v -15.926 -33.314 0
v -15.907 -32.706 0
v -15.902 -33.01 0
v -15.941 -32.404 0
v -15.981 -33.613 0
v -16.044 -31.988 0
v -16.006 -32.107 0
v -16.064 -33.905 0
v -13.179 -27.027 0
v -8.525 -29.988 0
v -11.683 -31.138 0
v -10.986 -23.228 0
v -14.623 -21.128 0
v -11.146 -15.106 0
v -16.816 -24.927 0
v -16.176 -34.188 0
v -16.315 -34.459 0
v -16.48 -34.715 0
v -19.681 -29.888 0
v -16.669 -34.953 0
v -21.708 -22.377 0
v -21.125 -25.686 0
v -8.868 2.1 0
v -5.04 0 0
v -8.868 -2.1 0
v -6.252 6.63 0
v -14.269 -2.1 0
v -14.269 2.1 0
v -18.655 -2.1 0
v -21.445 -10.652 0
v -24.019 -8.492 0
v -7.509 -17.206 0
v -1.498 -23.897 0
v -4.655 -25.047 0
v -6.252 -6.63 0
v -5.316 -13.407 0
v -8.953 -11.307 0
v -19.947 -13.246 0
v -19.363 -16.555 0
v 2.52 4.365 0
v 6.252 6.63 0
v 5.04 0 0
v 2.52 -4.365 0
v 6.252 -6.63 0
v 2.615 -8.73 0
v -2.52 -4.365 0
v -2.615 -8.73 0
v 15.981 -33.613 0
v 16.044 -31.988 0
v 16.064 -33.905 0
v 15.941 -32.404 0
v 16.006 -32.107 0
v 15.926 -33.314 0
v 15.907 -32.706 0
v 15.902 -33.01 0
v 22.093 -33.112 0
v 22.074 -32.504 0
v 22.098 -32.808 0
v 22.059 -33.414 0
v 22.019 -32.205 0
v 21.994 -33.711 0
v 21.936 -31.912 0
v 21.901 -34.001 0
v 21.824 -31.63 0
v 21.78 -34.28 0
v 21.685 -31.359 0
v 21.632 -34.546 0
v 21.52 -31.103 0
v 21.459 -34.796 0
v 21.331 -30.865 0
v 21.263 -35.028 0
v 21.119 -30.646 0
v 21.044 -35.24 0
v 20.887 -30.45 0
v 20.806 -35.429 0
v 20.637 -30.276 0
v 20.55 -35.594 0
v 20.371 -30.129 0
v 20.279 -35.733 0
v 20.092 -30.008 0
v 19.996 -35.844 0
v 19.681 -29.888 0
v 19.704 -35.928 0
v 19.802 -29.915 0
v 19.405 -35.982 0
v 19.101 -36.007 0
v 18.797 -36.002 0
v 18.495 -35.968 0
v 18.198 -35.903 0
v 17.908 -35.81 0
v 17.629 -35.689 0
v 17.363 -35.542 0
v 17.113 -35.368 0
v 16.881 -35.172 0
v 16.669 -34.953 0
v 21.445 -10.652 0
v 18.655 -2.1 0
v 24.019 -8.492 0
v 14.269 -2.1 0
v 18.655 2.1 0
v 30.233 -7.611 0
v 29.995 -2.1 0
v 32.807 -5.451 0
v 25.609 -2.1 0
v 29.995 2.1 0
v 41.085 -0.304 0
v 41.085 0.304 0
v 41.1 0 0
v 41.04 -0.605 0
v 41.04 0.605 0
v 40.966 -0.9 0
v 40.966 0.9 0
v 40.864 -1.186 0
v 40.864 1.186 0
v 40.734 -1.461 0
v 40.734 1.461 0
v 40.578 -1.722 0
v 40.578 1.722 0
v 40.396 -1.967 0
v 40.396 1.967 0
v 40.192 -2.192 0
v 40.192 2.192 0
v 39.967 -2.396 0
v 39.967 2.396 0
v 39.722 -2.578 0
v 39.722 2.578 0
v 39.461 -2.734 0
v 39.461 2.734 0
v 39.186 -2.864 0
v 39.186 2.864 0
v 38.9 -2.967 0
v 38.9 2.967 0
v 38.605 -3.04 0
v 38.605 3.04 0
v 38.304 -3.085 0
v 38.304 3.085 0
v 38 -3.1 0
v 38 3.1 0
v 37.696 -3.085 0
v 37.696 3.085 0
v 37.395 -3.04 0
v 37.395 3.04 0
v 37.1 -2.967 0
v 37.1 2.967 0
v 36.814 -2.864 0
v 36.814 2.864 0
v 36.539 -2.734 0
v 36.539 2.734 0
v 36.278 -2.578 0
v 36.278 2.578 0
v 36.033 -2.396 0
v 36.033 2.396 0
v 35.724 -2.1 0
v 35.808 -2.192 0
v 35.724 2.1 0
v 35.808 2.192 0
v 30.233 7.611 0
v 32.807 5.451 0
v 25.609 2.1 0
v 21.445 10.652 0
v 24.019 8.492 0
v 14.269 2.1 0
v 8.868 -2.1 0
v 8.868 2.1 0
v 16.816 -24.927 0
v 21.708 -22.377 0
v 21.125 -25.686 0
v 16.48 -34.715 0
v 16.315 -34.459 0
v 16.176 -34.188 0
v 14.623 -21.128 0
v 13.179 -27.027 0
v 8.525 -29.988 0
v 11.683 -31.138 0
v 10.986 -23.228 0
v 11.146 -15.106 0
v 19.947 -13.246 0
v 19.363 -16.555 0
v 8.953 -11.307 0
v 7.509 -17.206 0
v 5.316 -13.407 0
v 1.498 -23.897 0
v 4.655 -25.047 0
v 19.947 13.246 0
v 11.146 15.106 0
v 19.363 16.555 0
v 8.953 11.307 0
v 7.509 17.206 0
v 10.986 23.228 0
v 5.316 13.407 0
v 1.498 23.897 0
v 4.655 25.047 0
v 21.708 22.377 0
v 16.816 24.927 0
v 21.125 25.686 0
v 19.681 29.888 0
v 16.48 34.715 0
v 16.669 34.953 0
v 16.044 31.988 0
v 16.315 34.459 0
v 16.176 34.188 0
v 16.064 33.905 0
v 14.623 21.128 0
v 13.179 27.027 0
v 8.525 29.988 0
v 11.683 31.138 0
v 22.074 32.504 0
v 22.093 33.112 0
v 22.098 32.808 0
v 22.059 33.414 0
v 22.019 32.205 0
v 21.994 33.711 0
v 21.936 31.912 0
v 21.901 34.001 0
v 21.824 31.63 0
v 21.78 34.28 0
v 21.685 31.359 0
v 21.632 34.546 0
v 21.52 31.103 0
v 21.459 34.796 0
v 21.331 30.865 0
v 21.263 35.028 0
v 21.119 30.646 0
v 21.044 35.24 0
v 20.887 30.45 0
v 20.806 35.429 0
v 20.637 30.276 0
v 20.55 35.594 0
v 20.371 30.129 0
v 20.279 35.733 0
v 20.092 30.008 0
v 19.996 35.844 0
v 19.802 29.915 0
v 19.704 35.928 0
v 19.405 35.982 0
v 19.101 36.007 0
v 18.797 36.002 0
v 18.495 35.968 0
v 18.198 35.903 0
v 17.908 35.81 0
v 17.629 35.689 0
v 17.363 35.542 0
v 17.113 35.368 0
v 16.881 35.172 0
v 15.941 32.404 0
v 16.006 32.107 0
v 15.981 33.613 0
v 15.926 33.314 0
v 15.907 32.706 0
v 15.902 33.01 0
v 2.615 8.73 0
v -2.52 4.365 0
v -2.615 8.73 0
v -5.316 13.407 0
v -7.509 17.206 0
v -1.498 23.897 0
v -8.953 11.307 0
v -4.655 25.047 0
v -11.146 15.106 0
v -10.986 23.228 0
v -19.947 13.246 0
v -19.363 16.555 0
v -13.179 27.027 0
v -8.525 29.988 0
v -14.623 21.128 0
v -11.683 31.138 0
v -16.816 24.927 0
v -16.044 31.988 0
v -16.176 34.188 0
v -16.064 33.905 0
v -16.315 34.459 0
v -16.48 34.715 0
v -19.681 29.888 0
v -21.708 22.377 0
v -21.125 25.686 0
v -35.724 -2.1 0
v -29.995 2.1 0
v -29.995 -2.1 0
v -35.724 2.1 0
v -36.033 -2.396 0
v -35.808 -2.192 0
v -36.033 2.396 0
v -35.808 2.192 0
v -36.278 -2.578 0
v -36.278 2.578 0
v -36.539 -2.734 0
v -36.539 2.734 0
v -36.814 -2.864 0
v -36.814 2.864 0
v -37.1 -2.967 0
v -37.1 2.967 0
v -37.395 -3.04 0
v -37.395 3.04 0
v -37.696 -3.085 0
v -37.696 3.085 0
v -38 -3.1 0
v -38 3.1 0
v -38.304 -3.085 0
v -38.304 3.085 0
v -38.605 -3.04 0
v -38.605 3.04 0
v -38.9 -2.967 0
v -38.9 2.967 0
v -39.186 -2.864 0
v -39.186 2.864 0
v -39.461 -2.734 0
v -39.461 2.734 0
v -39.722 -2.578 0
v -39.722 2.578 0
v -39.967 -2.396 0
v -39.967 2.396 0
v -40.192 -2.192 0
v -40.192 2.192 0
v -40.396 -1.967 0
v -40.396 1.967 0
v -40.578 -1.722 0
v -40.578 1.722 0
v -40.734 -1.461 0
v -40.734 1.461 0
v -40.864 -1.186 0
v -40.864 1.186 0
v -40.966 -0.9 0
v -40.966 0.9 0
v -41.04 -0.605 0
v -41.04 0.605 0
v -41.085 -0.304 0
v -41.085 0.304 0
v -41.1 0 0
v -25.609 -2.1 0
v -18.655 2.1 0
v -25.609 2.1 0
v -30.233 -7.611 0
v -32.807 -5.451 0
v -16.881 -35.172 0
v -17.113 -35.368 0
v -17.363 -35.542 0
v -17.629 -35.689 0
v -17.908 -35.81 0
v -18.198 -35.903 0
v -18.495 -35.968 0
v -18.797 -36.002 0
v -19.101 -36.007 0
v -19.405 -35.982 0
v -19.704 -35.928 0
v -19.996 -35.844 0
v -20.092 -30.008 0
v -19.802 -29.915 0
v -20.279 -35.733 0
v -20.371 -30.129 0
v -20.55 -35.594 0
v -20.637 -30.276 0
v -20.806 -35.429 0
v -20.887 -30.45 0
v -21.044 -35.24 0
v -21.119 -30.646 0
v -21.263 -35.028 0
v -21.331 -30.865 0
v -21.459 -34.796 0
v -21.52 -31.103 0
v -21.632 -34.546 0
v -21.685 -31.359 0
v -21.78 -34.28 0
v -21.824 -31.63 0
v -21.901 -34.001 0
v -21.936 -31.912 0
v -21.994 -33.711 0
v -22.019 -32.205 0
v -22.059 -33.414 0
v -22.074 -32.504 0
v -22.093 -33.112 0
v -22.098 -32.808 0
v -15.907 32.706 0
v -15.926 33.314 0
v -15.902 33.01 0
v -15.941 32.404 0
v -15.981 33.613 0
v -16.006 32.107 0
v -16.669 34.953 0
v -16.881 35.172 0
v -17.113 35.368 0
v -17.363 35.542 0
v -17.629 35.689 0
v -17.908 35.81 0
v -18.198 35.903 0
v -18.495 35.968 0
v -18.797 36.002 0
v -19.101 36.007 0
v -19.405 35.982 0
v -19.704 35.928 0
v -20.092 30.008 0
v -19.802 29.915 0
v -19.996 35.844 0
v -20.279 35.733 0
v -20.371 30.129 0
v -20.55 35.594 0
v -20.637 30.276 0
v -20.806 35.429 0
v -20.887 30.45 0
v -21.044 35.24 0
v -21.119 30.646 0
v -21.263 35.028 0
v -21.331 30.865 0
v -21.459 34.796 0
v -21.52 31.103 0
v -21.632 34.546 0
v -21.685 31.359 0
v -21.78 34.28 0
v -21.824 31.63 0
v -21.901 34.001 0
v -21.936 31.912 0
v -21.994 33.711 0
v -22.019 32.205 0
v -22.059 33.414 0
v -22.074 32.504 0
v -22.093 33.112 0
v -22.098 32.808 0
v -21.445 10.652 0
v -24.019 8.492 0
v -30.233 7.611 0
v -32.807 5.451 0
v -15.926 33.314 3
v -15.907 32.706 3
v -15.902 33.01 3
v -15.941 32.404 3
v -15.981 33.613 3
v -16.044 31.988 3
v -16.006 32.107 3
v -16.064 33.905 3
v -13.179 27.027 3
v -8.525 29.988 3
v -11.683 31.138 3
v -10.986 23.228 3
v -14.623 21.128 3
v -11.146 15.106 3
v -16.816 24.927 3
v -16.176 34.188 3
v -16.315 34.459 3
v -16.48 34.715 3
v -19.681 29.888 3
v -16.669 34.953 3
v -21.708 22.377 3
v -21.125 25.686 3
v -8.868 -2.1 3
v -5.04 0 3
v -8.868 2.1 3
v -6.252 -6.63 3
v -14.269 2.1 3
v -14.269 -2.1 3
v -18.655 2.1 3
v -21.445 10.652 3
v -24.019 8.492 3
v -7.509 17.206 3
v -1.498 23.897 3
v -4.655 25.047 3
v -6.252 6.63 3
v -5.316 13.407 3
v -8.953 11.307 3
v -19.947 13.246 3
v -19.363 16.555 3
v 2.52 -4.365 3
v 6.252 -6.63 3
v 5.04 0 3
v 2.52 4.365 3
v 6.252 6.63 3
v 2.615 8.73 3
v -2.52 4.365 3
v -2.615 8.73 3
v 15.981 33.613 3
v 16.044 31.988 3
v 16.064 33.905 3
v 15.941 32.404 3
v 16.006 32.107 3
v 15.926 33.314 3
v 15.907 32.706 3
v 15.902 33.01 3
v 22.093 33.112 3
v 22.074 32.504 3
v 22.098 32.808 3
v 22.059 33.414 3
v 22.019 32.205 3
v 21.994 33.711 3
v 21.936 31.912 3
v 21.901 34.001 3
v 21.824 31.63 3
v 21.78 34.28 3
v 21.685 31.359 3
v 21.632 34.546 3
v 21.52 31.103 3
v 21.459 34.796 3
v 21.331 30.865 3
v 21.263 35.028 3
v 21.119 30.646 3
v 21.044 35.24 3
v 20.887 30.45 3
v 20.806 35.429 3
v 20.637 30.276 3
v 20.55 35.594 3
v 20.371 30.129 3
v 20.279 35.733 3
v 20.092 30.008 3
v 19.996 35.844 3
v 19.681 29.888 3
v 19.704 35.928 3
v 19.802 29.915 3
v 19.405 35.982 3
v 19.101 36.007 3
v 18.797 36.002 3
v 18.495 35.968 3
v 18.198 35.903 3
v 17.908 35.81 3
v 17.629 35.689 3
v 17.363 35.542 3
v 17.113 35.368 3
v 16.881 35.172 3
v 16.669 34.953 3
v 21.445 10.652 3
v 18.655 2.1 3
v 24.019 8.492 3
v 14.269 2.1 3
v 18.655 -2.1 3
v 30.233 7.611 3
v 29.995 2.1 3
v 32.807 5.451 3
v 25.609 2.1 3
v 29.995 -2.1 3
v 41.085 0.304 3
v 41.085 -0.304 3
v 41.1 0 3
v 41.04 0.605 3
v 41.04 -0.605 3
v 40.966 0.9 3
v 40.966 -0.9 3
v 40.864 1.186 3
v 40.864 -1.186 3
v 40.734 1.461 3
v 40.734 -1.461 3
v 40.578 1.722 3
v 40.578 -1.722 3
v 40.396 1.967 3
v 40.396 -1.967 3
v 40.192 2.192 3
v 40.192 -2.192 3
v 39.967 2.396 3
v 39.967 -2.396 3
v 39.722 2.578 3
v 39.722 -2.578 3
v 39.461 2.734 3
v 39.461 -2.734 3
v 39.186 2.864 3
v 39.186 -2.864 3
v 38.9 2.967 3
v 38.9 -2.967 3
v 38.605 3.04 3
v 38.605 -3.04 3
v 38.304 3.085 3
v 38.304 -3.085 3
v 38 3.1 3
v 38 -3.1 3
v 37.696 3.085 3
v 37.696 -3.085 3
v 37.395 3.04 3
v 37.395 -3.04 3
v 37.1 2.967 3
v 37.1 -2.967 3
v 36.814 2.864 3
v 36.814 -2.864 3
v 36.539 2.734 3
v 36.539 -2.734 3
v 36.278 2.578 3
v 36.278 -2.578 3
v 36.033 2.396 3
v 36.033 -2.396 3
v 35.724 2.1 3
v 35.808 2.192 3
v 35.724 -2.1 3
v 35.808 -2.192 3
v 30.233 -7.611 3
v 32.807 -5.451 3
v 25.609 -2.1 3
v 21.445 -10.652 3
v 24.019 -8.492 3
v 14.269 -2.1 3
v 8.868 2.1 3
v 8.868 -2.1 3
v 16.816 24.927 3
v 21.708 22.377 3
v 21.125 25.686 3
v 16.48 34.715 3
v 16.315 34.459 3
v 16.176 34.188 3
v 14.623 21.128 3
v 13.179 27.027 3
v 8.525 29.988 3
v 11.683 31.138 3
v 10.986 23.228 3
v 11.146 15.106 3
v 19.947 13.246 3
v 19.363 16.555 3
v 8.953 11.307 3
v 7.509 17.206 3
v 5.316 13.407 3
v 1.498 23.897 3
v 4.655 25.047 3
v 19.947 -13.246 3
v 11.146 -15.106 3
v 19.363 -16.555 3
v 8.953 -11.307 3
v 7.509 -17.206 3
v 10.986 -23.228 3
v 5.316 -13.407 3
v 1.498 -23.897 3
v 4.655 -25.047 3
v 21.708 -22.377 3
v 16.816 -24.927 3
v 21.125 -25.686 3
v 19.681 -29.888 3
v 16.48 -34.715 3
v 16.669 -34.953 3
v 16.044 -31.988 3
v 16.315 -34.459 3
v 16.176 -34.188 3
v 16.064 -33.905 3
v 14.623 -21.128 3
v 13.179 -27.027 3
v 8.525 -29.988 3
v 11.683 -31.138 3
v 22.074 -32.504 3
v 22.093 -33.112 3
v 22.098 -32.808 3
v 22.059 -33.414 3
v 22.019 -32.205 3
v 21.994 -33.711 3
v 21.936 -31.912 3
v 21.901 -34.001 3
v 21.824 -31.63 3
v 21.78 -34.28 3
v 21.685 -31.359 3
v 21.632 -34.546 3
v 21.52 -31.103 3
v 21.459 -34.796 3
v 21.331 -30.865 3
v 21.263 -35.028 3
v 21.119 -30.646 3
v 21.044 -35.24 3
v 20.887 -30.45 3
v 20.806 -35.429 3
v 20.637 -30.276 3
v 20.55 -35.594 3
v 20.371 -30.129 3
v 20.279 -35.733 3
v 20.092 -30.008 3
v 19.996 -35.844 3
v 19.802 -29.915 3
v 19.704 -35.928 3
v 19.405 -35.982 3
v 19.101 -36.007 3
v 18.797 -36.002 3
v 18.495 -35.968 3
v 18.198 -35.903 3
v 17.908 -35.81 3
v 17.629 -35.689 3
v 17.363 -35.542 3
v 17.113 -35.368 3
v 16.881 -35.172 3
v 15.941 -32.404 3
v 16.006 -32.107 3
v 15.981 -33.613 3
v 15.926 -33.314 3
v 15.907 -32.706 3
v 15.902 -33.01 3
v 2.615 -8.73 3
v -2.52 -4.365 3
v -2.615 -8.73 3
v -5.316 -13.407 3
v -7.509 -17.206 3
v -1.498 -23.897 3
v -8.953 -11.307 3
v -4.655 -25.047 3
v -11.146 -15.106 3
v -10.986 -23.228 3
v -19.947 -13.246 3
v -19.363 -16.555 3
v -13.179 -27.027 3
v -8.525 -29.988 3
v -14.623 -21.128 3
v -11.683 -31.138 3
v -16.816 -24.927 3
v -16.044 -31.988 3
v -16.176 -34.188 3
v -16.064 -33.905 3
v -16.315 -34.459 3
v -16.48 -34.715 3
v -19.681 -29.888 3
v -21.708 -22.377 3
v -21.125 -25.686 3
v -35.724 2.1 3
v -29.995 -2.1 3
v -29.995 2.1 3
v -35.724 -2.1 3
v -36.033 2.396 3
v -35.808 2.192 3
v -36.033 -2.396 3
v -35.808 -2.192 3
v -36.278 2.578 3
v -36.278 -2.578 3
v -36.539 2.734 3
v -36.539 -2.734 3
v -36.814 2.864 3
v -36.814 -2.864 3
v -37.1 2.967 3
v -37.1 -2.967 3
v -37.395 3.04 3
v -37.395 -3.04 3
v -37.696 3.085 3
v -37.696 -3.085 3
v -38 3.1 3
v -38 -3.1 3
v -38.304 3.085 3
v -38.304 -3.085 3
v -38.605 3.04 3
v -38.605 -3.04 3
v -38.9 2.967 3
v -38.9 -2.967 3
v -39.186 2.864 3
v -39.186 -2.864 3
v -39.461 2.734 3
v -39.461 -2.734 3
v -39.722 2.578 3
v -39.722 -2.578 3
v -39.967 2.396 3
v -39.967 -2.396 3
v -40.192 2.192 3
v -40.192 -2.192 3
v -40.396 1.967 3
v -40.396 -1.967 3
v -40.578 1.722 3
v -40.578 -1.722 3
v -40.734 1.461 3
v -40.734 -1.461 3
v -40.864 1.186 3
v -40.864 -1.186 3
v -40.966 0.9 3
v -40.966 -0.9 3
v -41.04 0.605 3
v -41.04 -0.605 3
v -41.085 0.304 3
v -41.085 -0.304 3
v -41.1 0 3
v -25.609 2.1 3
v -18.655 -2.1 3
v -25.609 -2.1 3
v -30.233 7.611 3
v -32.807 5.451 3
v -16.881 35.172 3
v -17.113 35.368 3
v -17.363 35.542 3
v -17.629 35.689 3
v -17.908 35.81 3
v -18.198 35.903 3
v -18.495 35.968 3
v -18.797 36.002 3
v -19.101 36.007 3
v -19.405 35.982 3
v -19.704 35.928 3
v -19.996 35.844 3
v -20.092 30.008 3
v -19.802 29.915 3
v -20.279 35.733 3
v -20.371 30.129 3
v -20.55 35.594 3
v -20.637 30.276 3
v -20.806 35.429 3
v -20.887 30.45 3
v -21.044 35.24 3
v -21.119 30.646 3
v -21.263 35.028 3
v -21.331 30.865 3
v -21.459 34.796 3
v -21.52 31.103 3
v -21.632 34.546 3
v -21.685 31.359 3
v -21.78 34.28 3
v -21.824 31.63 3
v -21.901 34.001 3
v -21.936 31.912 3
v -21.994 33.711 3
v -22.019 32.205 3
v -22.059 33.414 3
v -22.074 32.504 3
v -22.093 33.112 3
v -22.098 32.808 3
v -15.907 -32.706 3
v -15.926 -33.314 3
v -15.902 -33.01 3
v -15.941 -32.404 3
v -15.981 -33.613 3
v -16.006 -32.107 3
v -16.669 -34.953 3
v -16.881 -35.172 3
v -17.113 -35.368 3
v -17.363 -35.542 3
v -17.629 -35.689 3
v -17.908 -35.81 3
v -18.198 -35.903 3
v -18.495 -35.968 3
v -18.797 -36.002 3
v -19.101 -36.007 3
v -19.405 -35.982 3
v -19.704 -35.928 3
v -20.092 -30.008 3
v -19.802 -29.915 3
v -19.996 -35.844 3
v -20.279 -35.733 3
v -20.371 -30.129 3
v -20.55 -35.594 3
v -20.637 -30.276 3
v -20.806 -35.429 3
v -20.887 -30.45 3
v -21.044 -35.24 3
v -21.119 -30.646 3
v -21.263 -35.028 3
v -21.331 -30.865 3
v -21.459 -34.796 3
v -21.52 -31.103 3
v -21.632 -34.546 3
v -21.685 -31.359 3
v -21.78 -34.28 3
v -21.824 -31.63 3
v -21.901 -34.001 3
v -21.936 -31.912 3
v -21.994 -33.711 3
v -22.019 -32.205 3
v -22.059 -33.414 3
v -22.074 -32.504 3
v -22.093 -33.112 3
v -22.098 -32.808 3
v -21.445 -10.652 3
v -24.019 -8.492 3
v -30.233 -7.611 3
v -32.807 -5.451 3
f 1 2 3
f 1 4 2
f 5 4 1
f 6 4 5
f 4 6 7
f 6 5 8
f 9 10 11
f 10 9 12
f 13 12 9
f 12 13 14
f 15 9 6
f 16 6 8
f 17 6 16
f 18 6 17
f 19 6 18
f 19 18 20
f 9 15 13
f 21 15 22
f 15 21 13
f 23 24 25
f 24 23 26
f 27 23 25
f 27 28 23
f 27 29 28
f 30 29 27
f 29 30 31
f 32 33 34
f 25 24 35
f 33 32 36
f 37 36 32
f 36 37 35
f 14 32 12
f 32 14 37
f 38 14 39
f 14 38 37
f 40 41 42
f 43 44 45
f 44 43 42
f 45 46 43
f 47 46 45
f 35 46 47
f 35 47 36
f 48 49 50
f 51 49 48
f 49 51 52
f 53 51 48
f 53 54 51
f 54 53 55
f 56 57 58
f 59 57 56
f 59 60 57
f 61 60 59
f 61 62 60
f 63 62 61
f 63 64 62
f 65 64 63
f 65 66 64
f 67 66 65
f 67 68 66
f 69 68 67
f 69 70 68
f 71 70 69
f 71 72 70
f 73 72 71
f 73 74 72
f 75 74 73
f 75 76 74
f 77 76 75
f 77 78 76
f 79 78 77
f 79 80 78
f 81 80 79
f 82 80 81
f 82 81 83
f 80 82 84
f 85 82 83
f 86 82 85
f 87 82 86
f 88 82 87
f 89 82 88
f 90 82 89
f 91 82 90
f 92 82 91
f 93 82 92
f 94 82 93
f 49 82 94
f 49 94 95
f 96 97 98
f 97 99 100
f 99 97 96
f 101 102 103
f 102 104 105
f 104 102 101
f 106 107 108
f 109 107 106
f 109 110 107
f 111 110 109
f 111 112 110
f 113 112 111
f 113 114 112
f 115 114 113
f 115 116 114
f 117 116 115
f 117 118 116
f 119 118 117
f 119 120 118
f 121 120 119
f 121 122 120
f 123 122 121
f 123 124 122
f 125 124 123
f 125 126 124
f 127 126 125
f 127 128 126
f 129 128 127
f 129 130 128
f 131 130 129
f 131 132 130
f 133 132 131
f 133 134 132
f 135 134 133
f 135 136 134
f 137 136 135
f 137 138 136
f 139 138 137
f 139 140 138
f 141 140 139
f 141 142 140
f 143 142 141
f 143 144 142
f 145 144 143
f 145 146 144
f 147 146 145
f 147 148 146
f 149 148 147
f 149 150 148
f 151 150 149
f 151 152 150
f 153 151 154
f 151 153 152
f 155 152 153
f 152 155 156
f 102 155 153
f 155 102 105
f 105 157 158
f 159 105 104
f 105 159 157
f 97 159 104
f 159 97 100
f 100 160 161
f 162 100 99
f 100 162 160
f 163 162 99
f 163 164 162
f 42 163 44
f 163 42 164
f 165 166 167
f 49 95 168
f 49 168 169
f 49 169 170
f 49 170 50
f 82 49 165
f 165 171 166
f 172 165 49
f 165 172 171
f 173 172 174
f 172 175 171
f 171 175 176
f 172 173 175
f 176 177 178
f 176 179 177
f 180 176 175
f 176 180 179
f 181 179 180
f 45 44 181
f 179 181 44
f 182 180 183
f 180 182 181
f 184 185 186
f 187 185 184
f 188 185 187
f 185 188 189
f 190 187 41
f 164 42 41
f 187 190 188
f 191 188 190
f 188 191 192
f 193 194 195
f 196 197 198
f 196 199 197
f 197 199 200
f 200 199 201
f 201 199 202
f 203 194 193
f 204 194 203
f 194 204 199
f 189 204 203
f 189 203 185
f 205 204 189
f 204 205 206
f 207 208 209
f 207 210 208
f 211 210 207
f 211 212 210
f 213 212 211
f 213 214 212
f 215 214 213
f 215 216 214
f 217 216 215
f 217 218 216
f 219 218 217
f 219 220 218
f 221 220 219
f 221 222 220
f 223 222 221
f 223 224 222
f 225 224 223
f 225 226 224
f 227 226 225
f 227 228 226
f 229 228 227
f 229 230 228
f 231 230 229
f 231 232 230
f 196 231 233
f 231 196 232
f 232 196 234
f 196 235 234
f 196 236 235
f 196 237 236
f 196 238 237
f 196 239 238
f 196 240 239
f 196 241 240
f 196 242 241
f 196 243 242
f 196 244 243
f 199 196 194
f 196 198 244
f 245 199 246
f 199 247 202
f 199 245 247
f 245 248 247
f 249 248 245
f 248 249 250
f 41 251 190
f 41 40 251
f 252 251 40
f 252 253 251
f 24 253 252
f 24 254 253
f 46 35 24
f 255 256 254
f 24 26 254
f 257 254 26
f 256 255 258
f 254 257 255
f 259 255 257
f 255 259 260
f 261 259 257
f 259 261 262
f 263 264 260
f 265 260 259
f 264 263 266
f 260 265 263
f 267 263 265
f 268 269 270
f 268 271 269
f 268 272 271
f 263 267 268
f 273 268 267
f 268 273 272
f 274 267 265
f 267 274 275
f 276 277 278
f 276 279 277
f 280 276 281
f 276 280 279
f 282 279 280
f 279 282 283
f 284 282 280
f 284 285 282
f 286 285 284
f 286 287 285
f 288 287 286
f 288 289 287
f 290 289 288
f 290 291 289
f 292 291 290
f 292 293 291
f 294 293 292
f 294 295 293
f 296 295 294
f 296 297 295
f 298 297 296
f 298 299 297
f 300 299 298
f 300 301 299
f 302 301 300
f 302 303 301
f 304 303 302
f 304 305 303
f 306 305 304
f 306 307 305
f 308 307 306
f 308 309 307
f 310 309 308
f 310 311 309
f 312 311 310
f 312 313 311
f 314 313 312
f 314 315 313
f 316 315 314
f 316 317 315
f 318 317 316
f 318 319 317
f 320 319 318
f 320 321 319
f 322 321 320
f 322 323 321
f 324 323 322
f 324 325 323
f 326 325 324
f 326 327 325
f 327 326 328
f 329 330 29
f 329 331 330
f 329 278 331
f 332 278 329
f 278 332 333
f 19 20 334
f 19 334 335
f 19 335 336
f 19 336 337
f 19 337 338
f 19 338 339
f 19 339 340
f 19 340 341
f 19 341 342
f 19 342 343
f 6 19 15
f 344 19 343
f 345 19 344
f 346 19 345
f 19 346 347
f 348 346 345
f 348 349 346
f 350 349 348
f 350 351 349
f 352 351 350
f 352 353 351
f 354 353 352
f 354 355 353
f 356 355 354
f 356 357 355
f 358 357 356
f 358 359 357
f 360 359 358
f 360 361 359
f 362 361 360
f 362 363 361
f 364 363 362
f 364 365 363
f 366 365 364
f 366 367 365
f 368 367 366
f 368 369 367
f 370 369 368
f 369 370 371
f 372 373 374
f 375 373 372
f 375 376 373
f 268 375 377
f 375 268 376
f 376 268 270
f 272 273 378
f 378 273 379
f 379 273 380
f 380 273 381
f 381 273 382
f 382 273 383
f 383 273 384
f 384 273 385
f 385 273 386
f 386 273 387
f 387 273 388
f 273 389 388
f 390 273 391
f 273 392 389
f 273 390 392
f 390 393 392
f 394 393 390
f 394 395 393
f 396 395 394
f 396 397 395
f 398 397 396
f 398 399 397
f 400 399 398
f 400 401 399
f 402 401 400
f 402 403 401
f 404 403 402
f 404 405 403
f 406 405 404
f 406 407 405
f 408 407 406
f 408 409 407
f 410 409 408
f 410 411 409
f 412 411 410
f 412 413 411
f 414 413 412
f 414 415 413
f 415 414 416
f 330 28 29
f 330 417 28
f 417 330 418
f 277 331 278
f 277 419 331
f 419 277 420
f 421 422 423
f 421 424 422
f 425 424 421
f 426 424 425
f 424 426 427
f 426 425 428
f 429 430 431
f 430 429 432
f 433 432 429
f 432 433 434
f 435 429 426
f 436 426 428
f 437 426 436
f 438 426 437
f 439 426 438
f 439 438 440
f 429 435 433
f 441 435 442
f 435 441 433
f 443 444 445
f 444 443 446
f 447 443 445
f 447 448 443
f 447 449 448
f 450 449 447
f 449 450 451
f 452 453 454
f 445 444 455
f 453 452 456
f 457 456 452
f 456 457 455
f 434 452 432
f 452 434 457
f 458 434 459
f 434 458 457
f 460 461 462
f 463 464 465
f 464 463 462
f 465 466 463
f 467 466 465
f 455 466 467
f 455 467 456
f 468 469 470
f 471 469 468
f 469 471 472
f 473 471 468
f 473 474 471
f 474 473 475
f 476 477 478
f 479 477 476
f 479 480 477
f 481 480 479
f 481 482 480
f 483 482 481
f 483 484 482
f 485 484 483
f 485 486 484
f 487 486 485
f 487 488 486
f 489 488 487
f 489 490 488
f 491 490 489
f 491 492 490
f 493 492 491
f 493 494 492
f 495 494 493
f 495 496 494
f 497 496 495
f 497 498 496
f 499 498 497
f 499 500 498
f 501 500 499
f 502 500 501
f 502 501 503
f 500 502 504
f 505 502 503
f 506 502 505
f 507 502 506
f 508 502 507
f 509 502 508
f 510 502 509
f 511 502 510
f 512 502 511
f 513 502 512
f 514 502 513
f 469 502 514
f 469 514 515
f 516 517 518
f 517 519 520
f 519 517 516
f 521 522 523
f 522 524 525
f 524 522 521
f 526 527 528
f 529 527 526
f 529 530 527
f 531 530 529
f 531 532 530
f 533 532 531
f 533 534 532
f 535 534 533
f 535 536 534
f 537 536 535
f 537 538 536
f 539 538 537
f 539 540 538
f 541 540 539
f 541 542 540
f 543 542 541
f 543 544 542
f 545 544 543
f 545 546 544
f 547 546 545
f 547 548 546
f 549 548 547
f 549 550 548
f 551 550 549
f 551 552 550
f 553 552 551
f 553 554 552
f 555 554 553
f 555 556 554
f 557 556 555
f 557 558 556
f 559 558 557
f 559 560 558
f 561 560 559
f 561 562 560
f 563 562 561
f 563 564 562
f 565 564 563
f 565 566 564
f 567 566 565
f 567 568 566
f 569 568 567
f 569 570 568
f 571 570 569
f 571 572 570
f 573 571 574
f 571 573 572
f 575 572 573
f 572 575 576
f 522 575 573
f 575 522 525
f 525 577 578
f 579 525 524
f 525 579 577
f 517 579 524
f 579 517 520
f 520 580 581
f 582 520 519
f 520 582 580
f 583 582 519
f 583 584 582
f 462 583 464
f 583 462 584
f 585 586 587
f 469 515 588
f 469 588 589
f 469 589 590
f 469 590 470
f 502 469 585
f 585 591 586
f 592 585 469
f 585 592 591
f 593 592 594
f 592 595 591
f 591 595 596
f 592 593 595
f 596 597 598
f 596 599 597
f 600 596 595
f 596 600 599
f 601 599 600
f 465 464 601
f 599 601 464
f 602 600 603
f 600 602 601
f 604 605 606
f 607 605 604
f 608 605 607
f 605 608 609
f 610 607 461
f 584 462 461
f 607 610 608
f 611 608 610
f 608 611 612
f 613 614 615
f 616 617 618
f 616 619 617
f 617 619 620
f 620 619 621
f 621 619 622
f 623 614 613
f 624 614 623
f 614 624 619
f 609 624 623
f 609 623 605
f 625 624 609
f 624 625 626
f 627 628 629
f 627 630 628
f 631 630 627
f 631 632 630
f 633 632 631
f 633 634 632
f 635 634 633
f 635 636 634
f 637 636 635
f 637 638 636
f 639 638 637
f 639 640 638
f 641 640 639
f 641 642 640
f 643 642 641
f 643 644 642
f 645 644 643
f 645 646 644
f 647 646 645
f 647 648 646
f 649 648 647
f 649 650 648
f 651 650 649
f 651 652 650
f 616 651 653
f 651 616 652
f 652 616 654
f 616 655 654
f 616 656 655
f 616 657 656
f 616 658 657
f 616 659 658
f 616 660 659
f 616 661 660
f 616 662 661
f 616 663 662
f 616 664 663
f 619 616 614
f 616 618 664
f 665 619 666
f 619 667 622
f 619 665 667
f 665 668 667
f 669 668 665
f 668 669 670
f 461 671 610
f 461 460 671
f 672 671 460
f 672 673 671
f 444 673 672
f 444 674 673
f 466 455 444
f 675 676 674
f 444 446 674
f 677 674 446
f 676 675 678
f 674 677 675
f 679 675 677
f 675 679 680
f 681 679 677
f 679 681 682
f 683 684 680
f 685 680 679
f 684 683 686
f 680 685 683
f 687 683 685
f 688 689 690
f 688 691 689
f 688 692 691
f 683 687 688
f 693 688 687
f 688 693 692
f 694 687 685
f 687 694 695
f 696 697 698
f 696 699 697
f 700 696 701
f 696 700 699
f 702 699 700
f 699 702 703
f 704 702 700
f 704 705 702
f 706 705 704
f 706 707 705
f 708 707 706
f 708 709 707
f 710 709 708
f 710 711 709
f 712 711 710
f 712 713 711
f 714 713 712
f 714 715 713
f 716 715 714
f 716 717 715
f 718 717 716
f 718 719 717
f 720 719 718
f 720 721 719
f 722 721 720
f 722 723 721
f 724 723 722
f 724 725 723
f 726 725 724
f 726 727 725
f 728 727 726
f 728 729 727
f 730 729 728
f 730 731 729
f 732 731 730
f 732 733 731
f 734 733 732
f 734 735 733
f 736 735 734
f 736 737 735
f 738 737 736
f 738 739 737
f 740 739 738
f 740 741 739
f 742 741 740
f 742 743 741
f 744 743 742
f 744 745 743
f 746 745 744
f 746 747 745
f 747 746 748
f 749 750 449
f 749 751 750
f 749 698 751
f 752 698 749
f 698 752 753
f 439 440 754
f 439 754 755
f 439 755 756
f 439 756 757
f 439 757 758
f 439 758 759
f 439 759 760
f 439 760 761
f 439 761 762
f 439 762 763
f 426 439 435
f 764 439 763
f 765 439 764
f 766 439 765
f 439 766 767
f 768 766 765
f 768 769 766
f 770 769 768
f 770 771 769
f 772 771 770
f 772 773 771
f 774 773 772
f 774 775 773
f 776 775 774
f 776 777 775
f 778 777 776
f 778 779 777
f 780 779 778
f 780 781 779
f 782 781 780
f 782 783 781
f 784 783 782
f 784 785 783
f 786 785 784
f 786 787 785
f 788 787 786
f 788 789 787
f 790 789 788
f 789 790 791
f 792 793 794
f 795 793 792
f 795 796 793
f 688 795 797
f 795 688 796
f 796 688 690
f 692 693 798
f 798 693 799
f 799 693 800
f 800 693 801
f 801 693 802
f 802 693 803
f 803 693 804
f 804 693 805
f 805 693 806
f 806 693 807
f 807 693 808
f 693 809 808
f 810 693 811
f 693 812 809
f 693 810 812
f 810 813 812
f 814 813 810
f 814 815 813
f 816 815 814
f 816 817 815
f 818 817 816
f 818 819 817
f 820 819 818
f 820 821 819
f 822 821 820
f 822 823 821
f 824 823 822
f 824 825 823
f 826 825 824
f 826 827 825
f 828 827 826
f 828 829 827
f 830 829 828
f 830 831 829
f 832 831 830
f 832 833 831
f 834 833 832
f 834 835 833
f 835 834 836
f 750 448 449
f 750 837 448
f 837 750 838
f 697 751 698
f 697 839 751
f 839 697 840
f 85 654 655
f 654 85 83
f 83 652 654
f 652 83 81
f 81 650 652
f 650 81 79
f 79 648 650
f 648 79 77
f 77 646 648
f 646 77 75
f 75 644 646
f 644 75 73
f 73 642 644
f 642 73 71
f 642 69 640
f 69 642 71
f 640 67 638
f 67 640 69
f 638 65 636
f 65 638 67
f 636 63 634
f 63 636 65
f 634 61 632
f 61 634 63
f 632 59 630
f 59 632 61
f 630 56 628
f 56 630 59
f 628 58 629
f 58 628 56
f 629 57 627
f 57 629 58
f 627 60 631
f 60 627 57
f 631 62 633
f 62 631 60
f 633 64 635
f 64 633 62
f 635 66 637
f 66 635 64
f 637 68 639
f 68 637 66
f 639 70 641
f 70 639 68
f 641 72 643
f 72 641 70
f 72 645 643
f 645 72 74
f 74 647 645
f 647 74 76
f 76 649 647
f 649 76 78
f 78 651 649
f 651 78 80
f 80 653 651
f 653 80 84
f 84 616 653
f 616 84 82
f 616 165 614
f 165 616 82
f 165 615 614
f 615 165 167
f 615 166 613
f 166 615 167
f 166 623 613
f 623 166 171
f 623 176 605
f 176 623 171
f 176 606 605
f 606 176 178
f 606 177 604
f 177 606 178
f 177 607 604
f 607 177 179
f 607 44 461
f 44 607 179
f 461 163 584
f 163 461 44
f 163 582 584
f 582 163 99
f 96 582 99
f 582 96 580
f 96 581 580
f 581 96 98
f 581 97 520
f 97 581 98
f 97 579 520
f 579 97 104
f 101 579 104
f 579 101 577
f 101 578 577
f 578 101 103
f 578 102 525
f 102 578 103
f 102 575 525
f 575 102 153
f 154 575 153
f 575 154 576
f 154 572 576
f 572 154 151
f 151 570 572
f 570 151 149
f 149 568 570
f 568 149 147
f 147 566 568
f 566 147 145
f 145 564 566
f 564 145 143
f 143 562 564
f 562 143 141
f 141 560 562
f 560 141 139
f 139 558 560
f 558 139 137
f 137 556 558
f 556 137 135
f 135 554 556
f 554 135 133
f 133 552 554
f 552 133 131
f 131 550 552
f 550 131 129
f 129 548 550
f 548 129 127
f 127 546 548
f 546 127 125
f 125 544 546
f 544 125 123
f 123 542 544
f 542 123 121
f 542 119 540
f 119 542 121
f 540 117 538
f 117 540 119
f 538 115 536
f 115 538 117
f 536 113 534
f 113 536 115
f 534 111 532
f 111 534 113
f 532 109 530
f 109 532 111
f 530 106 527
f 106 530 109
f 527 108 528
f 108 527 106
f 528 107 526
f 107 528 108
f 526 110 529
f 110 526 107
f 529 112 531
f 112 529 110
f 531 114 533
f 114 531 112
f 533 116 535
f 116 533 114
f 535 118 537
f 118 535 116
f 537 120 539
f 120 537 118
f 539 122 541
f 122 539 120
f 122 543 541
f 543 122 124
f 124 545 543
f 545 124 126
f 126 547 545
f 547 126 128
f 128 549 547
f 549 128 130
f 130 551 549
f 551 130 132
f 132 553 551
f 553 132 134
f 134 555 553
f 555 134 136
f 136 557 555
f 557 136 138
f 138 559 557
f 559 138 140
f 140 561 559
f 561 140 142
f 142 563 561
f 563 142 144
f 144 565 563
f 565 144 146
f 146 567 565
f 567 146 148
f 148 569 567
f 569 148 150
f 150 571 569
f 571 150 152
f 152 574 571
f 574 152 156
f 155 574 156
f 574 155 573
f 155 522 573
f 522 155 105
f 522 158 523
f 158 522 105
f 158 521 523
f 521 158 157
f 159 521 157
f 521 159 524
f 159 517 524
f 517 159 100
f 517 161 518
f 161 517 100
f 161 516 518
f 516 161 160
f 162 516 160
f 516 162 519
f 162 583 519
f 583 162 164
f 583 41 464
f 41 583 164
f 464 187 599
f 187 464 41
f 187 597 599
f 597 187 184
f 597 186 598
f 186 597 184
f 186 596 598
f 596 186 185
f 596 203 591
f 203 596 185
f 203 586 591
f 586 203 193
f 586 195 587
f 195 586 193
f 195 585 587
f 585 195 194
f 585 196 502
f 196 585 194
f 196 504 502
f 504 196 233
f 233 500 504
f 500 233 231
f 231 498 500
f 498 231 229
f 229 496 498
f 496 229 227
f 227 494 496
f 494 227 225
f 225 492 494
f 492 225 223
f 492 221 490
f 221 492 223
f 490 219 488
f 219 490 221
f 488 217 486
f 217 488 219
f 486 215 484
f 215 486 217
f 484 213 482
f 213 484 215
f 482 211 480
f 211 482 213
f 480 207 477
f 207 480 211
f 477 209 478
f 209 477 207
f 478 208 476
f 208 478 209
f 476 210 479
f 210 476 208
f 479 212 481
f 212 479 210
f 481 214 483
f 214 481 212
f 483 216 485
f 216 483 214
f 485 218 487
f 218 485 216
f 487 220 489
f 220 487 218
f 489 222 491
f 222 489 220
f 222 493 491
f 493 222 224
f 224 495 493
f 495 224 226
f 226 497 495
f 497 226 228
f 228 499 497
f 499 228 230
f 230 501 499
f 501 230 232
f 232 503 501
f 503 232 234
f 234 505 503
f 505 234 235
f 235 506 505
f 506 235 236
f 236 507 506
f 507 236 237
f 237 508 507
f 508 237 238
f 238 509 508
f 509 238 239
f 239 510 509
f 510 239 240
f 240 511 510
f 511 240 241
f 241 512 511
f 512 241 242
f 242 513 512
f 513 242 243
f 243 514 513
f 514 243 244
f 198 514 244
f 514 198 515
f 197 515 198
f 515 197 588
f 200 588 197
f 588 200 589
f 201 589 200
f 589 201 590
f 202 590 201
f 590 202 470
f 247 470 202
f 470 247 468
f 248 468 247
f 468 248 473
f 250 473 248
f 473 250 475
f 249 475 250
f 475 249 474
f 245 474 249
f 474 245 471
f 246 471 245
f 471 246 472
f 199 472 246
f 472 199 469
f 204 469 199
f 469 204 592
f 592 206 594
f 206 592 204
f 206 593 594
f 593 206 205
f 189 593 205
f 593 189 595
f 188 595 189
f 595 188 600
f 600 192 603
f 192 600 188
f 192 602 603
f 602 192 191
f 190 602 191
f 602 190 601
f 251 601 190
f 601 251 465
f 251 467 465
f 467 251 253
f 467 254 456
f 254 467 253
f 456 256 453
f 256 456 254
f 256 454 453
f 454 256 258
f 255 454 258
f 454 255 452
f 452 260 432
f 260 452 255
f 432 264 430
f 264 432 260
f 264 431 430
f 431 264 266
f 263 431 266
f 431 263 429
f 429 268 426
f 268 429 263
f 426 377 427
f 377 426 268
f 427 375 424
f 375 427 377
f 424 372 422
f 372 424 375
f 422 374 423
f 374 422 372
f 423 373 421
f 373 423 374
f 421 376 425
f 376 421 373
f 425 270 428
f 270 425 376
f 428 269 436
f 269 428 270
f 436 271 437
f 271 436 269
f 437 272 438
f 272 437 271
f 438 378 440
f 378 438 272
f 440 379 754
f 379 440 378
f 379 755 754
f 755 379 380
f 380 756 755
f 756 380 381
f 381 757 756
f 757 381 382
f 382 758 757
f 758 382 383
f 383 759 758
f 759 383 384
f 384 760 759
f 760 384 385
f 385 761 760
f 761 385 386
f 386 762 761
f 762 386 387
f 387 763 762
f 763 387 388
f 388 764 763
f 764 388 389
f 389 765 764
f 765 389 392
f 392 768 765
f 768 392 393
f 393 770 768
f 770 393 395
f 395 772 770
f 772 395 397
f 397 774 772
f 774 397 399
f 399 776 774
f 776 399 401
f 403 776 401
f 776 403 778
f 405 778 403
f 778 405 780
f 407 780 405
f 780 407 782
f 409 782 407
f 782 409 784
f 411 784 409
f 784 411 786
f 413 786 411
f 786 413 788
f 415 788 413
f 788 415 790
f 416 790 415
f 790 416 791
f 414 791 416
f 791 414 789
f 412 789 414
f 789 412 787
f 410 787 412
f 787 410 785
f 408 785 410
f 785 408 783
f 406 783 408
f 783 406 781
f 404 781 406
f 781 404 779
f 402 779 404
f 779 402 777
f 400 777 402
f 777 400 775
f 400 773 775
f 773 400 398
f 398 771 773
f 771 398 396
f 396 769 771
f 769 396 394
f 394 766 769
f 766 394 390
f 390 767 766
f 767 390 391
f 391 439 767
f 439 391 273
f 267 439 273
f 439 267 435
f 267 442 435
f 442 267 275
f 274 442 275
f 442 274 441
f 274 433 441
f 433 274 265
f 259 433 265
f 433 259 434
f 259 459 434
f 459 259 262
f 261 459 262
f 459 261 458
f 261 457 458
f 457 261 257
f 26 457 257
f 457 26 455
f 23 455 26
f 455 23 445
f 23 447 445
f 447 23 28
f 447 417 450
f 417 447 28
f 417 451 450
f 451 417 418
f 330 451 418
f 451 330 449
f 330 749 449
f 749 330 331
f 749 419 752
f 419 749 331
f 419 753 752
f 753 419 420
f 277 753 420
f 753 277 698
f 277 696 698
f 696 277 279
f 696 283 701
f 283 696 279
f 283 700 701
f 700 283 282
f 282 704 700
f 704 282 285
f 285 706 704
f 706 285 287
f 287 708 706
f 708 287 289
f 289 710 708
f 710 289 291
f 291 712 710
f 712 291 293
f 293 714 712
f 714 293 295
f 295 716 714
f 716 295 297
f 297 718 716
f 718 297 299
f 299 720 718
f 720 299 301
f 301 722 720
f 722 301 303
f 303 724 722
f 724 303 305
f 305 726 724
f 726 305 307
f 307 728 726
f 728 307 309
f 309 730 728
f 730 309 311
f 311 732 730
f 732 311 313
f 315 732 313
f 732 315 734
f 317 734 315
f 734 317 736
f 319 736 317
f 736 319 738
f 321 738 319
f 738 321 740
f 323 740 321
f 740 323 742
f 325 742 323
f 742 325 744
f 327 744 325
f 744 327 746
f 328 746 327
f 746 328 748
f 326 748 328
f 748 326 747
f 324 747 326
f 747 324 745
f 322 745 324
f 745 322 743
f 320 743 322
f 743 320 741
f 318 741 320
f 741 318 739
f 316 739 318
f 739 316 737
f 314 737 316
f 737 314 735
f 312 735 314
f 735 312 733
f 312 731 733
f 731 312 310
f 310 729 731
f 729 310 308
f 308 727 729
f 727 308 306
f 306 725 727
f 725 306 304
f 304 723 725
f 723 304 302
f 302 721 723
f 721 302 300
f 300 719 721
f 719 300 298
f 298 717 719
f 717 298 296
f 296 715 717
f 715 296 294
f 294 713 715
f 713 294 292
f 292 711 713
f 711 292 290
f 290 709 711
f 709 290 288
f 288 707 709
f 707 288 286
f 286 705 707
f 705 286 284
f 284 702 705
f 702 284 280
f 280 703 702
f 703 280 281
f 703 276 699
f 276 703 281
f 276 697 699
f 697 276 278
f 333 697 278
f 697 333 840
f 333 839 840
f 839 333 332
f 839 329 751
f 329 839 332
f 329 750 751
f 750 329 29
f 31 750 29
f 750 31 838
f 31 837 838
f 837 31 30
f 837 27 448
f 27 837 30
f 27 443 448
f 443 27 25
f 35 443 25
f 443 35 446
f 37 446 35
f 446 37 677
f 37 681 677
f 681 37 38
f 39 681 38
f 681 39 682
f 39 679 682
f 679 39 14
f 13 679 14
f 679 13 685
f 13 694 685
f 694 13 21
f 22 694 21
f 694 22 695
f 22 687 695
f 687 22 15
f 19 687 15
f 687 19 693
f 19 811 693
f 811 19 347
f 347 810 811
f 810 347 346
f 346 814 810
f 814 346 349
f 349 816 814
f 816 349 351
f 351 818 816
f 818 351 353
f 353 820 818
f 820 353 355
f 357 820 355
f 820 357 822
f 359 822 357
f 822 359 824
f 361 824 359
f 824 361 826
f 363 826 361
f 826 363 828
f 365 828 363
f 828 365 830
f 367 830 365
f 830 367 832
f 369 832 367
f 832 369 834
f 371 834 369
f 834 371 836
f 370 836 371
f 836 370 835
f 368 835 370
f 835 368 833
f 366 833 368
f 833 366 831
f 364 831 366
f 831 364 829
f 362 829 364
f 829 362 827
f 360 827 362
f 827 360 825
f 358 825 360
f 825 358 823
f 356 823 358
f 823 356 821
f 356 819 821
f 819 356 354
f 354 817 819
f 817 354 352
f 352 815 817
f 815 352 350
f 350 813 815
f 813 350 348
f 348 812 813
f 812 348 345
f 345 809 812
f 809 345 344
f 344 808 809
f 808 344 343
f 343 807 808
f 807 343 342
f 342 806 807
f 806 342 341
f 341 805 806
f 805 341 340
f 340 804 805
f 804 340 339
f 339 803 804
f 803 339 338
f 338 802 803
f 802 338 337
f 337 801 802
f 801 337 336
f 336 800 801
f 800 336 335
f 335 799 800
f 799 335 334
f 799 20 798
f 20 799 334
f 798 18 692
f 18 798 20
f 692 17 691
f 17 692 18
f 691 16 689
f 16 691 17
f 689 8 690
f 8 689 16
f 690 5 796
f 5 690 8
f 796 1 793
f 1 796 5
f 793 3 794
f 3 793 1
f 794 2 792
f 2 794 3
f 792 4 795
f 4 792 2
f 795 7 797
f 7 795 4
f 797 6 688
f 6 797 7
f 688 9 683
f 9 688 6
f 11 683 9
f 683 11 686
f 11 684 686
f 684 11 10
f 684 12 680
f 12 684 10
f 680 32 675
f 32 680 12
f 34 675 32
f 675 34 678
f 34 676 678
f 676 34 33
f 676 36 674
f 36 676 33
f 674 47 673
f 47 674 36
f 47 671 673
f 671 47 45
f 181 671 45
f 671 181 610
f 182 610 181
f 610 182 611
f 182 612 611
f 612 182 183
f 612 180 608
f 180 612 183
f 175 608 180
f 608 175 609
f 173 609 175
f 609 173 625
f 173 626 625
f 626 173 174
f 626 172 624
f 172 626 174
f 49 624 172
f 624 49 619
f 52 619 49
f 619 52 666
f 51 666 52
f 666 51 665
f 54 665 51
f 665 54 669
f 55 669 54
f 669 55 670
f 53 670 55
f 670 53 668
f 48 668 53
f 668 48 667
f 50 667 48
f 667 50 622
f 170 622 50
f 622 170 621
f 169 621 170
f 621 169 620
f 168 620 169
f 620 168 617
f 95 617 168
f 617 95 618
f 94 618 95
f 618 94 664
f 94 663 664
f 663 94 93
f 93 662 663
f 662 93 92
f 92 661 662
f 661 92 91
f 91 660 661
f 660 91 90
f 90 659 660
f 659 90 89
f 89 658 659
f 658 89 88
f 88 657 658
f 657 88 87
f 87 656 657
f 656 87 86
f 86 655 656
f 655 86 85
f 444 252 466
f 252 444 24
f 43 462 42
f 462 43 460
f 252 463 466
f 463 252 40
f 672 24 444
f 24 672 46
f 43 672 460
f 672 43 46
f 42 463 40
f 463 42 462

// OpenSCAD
// Impronta 3D — Copo de nieve colgante (diseño propio)
// Copo de 6 brazos con ramas y centro calado. Se imprime acostado, sin soportes. Se pueden hacer varios y armar una guirnalda.

diametro = 84;
espesor  = 3;
brazo    = 4.2;
agujero  = 3.5;
$fn = 64;

r = diametro / 2;
module brazo() {
    translate([0, -brazo / 2]) square([r - 4, brazo]);
    translate([r - 4, 0]) circle(d = brazo + 2);
    for (p = [0.35, 0.62]) translate([r * p, 0]) for (s = [1, -1]) rotate(s * 50) translate([0, -brazo * 0.4]) square([r * (0.42 - p * 0.35), brazo * 0.8]);
}

difference() {
    linear_extrude(espesor) union() {
        for (a = [0 : 60 : 359]) rotate(a) brazo();
        circle(r = r * 0.24, $fn = 6);
    }
    translate([0, 0, -1]) linear_extrude(espesor + 2) circle(r = r * 0.12, $fn = 6);   // centro calado
    // agujero para colgar en la punta de un brazo
    translate([0, r - 4, -1]) cylinder(d = agujero, h = espesor + 2);
}
